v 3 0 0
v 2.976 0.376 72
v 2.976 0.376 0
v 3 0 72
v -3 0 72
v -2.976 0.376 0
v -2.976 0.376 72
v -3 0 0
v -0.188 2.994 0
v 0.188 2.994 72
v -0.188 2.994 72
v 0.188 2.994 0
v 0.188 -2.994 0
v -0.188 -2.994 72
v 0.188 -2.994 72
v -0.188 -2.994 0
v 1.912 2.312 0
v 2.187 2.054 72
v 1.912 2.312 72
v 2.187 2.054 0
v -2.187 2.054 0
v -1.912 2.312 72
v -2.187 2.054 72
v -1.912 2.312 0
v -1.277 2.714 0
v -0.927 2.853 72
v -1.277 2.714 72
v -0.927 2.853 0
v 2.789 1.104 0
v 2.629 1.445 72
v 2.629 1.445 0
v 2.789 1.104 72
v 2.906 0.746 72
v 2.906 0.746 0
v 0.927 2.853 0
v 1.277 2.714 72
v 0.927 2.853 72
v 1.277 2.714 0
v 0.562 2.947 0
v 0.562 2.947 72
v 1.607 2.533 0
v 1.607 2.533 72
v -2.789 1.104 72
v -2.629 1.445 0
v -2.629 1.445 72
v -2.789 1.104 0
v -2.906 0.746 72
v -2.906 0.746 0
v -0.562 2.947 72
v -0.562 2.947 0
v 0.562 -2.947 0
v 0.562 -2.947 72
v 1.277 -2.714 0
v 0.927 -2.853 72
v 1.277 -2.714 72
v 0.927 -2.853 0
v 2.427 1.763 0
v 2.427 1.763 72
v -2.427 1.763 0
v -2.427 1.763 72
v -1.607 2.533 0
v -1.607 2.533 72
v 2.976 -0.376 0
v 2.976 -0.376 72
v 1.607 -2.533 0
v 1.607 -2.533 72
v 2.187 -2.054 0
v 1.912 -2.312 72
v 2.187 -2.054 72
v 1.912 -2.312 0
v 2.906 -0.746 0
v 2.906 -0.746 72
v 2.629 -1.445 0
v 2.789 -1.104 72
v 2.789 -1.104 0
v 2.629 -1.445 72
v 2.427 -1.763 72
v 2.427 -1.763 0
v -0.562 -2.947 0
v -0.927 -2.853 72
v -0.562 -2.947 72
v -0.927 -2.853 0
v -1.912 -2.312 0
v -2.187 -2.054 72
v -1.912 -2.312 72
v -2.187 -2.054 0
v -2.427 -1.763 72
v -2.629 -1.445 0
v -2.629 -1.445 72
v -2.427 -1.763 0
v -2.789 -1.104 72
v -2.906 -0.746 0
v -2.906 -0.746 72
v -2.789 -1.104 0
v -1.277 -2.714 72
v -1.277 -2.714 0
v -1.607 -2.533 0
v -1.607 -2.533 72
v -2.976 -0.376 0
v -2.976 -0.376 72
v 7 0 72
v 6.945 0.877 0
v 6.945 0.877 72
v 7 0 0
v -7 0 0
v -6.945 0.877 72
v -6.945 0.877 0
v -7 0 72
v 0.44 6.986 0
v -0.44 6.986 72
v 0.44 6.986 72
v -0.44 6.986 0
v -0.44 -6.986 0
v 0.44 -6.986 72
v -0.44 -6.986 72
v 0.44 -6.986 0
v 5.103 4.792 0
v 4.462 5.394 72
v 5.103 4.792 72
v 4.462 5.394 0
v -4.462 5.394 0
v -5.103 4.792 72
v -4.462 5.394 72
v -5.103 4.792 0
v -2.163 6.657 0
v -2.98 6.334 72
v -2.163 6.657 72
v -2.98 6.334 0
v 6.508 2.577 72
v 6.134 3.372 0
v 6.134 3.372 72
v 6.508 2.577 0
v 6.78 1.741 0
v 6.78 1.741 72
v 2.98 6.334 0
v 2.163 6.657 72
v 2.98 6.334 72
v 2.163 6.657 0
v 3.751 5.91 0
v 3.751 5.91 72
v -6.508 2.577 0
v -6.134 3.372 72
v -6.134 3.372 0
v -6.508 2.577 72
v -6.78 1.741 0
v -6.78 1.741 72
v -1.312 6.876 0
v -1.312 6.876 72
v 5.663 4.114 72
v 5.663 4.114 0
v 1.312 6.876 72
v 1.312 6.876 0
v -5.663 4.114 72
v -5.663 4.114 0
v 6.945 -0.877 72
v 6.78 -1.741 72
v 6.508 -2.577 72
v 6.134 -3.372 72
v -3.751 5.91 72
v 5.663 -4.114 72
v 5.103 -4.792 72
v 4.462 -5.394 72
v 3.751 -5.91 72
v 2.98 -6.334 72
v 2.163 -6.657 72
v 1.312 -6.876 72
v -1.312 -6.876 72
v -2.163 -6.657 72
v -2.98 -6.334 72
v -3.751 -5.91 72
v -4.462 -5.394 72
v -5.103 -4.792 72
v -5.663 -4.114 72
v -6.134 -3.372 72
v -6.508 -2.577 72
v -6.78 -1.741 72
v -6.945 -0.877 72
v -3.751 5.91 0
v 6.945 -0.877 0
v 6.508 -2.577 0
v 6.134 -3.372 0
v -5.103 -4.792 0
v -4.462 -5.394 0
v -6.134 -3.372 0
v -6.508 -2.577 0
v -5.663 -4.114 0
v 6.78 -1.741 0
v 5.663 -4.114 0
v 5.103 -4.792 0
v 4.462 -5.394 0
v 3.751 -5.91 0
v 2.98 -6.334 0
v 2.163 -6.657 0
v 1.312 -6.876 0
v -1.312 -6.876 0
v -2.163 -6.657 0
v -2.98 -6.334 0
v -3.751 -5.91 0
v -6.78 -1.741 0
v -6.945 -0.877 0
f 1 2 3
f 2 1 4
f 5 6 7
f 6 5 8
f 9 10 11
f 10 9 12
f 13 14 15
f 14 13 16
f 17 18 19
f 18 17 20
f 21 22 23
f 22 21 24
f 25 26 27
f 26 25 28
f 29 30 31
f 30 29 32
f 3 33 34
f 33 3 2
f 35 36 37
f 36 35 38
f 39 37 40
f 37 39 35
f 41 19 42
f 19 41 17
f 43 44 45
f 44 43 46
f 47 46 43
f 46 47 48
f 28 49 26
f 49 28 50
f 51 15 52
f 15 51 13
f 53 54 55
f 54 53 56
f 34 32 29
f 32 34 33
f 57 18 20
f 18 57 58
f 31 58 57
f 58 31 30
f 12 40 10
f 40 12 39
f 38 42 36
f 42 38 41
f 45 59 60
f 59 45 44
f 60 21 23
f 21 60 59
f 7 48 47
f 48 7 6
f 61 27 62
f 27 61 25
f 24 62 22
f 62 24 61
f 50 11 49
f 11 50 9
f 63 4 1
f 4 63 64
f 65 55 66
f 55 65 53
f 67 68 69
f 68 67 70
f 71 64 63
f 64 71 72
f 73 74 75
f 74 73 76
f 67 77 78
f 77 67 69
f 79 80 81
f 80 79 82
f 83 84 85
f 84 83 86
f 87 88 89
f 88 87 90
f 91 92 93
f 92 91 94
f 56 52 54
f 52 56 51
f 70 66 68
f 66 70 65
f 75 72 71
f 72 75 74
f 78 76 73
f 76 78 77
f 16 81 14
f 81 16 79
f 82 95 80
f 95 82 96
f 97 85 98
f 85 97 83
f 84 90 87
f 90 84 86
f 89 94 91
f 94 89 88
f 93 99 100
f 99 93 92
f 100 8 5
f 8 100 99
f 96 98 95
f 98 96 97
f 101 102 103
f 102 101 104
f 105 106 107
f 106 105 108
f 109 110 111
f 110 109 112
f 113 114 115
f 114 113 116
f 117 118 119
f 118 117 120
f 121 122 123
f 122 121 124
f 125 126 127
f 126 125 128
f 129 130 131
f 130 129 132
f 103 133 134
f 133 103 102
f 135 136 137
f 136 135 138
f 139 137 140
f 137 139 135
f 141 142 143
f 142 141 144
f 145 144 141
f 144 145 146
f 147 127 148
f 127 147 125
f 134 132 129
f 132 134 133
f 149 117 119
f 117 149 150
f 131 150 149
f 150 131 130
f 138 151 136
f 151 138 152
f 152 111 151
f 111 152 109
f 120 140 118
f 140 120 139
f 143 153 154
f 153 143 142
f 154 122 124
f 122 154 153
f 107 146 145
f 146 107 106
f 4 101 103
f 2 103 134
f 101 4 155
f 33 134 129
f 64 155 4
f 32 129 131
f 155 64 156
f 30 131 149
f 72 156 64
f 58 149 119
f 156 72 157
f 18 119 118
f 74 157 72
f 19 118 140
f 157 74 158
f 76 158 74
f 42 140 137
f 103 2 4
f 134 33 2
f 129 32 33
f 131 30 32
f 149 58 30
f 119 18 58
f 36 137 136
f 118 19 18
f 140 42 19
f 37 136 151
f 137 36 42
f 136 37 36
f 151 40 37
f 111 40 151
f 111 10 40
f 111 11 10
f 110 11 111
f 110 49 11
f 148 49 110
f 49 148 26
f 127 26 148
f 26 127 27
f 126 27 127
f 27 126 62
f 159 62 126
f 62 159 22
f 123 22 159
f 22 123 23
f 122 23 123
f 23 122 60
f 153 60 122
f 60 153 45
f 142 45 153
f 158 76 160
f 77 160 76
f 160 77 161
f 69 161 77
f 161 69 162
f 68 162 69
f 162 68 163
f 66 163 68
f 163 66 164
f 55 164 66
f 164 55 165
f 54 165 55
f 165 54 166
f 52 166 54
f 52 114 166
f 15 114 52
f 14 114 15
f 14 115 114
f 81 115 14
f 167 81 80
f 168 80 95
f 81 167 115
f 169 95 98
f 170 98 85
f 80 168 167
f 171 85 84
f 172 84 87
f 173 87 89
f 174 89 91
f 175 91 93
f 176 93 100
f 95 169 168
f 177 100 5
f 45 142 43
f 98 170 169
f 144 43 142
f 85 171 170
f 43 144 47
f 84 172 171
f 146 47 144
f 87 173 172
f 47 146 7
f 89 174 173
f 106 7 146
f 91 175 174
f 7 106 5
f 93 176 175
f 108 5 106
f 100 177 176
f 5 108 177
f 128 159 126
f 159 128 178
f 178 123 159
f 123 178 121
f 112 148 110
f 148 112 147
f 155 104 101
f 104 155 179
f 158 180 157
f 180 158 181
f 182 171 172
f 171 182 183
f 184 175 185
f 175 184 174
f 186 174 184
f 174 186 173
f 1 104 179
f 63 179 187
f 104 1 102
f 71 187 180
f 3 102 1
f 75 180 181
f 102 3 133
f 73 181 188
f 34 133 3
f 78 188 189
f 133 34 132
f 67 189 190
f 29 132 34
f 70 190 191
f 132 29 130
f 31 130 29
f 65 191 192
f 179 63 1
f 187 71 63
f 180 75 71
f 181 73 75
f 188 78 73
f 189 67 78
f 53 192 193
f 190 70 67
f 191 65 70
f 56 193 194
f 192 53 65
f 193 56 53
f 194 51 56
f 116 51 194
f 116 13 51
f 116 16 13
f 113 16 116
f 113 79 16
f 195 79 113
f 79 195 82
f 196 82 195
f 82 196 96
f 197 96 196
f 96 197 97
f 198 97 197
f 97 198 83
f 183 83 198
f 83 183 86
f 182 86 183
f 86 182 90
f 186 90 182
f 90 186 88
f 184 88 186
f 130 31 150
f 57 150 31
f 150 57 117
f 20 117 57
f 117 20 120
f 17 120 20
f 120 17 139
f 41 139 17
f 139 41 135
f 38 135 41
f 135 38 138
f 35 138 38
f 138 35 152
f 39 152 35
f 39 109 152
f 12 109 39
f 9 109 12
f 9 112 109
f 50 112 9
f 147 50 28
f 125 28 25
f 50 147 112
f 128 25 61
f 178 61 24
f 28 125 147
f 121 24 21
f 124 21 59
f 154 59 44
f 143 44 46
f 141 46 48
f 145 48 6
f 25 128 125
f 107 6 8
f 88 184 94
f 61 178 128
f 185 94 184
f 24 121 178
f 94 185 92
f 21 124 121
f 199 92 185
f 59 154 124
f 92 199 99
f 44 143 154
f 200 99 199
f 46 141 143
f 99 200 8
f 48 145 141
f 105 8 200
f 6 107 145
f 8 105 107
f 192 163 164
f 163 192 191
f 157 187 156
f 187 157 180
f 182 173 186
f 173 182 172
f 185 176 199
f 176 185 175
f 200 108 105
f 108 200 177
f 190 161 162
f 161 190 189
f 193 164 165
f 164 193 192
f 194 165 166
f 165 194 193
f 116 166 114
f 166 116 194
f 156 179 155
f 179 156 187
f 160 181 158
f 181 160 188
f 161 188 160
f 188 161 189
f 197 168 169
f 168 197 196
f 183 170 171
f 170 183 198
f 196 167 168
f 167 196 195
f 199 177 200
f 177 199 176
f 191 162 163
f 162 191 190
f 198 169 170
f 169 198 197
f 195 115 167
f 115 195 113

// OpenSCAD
$fn = 50;


difference() {
	union() {
		cylinder(h = 72, r = 7.0000000000);
	}
	union() {
		translate(v = [0, 0, -100]) {
			cylinder(h = 200, r = 3.0000000000);
		}
	}
}
